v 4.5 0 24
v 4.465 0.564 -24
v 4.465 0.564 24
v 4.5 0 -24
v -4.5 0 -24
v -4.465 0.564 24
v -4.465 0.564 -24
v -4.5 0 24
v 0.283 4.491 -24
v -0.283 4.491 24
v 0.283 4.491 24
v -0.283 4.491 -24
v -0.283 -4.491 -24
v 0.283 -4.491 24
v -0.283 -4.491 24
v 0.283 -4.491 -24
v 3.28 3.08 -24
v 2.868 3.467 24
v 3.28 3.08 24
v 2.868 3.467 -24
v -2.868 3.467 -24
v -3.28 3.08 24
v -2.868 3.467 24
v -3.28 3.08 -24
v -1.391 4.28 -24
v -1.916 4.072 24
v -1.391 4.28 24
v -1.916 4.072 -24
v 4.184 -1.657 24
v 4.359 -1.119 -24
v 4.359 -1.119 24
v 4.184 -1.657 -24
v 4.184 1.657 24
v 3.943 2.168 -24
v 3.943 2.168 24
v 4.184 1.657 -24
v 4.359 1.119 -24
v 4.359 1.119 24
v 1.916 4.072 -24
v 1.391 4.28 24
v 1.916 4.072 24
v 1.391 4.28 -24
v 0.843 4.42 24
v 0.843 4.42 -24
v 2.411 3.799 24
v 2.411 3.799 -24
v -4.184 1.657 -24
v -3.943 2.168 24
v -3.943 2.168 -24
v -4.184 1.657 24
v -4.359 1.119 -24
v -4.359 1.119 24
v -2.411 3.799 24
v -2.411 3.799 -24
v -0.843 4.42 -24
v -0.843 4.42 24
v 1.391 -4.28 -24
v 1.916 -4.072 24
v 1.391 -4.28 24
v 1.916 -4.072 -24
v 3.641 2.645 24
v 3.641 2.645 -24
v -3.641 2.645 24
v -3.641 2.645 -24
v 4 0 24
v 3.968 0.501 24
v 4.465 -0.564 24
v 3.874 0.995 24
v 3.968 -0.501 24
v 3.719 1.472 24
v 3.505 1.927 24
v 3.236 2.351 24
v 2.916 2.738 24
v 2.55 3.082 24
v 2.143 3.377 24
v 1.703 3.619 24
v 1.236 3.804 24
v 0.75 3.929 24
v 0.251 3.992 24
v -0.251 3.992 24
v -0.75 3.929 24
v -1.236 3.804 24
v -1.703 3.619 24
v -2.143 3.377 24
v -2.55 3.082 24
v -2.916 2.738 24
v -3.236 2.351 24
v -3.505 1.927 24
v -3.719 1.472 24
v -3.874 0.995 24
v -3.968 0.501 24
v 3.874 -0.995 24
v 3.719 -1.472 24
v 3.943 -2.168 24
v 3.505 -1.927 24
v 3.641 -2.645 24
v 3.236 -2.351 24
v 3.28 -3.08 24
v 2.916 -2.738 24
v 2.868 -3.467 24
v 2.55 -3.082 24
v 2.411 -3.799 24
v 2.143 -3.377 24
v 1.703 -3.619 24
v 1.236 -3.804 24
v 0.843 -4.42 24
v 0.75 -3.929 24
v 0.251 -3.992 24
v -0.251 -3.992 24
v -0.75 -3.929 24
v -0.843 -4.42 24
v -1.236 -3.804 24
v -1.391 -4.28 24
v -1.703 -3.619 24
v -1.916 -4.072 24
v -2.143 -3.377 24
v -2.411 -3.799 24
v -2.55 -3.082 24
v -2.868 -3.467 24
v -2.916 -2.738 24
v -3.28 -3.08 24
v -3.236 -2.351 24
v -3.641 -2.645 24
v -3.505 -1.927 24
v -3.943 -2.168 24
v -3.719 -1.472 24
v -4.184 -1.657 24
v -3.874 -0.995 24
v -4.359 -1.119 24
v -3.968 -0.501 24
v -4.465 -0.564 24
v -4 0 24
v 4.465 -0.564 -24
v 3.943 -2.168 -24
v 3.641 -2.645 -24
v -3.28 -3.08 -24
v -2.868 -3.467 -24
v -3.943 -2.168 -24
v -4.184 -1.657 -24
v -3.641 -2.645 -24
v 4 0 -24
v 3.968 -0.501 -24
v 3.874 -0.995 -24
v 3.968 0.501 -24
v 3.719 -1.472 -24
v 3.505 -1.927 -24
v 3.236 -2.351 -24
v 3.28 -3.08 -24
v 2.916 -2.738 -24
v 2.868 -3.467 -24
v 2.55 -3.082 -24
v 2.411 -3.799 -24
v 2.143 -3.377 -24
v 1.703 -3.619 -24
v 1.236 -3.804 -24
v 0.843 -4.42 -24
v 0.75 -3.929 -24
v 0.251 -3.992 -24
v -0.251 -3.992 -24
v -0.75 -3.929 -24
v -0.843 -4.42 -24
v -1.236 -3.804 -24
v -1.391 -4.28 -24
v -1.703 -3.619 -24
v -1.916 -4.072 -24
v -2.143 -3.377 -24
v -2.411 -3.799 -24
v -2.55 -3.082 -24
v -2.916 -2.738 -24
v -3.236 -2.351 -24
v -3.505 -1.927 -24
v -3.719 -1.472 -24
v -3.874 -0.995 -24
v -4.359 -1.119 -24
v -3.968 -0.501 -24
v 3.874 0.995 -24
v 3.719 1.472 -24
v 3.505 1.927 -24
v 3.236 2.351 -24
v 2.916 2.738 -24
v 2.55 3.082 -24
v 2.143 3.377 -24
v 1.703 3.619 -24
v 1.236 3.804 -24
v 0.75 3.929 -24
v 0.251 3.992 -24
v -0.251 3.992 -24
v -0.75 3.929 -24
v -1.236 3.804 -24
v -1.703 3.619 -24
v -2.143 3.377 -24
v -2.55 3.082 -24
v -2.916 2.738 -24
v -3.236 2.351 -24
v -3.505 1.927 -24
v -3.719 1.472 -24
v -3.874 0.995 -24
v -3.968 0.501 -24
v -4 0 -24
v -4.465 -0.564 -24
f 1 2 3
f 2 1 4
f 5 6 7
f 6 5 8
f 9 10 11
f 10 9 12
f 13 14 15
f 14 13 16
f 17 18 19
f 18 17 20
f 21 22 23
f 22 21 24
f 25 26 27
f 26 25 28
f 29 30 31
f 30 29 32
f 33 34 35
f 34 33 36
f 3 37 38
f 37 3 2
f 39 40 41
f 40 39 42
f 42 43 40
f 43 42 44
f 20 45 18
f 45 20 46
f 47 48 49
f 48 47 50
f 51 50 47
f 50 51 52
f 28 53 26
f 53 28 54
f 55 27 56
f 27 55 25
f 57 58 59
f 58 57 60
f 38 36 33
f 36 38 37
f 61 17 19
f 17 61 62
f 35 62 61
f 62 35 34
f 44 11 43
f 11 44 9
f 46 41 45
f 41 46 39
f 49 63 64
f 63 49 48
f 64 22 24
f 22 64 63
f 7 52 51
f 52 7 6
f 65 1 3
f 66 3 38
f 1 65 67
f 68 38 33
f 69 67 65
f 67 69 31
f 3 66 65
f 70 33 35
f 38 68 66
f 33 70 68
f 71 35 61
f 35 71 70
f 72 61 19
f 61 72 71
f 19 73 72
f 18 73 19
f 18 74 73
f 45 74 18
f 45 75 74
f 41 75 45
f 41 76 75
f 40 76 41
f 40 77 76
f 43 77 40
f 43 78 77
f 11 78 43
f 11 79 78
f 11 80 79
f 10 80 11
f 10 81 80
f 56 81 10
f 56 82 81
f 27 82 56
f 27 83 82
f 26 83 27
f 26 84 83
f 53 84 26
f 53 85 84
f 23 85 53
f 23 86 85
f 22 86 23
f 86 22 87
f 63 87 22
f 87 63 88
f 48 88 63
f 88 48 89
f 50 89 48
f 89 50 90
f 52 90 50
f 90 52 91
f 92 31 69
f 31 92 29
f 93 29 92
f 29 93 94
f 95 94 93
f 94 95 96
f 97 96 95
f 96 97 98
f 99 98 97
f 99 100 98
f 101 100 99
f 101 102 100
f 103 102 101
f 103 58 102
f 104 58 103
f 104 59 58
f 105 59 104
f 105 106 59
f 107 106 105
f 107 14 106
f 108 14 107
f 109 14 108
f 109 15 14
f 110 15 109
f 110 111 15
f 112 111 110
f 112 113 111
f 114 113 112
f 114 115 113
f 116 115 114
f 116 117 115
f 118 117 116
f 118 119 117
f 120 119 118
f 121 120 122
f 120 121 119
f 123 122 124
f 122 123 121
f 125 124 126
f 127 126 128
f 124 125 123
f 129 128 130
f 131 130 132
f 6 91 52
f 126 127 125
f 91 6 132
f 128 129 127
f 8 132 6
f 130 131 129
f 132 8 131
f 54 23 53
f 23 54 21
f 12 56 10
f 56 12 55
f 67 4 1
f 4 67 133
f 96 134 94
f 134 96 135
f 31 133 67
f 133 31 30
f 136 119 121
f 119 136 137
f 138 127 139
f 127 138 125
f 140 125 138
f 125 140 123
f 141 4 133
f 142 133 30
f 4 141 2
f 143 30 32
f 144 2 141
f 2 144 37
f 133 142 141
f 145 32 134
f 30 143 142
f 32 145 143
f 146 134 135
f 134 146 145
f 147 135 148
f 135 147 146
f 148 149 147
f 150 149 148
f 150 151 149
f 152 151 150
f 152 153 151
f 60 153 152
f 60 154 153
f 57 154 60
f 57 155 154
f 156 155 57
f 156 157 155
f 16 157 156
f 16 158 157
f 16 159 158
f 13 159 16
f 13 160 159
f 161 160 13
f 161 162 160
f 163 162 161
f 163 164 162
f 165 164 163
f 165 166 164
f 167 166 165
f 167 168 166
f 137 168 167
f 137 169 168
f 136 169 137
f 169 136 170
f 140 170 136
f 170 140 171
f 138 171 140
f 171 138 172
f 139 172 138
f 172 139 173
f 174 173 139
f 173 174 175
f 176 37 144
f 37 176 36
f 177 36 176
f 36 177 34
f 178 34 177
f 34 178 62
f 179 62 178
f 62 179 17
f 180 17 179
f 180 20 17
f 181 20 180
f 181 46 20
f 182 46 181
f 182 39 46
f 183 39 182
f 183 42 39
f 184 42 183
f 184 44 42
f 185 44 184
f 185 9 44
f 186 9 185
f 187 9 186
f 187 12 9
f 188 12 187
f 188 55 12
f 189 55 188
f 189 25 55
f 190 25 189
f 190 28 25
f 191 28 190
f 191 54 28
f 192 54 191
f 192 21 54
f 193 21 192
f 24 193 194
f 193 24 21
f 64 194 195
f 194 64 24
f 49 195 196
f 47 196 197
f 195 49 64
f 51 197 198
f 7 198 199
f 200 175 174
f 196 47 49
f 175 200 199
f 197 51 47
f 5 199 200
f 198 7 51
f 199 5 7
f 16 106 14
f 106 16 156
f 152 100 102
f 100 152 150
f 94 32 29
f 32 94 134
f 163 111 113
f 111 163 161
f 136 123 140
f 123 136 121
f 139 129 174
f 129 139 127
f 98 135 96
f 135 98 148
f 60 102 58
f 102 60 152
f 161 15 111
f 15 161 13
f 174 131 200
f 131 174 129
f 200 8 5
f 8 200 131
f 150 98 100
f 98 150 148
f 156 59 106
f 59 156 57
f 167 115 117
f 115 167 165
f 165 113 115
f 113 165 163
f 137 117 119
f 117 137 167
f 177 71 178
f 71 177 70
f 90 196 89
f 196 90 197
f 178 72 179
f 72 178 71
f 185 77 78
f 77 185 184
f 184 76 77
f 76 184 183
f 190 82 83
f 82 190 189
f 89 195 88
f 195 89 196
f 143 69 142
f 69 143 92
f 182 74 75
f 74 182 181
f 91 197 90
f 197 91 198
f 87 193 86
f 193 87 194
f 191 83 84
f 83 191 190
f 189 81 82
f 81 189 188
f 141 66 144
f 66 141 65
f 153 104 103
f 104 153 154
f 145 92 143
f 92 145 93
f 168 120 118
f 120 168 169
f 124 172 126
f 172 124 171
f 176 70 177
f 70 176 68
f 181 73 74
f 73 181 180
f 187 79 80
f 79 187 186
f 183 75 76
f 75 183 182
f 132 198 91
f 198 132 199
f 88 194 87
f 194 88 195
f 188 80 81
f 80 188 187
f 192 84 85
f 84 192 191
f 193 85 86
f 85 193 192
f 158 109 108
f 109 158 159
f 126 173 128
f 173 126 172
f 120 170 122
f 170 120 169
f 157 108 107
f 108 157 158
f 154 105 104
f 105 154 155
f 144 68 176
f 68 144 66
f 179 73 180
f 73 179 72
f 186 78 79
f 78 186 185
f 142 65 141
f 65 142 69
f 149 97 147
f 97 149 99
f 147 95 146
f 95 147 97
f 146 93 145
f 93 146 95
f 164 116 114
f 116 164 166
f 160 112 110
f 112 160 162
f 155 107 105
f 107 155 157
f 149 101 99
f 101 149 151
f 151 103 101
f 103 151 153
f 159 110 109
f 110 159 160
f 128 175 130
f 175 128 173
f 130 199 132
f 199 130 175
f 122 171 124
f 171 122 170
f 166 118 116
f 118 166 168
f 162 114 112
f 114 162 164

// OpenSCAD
$fn = 50;


difference() {
	union() {
		translate(v = [0, 0, -24.0000000000]) {
			cylinder(h = 48, r = 4.5000000000);
		}
	}
	union() {
		translate(v = [0, 0, -100.0000000000]) {
			cylinder(h = 200, r = 4.0000000000);
		}
	}
}
